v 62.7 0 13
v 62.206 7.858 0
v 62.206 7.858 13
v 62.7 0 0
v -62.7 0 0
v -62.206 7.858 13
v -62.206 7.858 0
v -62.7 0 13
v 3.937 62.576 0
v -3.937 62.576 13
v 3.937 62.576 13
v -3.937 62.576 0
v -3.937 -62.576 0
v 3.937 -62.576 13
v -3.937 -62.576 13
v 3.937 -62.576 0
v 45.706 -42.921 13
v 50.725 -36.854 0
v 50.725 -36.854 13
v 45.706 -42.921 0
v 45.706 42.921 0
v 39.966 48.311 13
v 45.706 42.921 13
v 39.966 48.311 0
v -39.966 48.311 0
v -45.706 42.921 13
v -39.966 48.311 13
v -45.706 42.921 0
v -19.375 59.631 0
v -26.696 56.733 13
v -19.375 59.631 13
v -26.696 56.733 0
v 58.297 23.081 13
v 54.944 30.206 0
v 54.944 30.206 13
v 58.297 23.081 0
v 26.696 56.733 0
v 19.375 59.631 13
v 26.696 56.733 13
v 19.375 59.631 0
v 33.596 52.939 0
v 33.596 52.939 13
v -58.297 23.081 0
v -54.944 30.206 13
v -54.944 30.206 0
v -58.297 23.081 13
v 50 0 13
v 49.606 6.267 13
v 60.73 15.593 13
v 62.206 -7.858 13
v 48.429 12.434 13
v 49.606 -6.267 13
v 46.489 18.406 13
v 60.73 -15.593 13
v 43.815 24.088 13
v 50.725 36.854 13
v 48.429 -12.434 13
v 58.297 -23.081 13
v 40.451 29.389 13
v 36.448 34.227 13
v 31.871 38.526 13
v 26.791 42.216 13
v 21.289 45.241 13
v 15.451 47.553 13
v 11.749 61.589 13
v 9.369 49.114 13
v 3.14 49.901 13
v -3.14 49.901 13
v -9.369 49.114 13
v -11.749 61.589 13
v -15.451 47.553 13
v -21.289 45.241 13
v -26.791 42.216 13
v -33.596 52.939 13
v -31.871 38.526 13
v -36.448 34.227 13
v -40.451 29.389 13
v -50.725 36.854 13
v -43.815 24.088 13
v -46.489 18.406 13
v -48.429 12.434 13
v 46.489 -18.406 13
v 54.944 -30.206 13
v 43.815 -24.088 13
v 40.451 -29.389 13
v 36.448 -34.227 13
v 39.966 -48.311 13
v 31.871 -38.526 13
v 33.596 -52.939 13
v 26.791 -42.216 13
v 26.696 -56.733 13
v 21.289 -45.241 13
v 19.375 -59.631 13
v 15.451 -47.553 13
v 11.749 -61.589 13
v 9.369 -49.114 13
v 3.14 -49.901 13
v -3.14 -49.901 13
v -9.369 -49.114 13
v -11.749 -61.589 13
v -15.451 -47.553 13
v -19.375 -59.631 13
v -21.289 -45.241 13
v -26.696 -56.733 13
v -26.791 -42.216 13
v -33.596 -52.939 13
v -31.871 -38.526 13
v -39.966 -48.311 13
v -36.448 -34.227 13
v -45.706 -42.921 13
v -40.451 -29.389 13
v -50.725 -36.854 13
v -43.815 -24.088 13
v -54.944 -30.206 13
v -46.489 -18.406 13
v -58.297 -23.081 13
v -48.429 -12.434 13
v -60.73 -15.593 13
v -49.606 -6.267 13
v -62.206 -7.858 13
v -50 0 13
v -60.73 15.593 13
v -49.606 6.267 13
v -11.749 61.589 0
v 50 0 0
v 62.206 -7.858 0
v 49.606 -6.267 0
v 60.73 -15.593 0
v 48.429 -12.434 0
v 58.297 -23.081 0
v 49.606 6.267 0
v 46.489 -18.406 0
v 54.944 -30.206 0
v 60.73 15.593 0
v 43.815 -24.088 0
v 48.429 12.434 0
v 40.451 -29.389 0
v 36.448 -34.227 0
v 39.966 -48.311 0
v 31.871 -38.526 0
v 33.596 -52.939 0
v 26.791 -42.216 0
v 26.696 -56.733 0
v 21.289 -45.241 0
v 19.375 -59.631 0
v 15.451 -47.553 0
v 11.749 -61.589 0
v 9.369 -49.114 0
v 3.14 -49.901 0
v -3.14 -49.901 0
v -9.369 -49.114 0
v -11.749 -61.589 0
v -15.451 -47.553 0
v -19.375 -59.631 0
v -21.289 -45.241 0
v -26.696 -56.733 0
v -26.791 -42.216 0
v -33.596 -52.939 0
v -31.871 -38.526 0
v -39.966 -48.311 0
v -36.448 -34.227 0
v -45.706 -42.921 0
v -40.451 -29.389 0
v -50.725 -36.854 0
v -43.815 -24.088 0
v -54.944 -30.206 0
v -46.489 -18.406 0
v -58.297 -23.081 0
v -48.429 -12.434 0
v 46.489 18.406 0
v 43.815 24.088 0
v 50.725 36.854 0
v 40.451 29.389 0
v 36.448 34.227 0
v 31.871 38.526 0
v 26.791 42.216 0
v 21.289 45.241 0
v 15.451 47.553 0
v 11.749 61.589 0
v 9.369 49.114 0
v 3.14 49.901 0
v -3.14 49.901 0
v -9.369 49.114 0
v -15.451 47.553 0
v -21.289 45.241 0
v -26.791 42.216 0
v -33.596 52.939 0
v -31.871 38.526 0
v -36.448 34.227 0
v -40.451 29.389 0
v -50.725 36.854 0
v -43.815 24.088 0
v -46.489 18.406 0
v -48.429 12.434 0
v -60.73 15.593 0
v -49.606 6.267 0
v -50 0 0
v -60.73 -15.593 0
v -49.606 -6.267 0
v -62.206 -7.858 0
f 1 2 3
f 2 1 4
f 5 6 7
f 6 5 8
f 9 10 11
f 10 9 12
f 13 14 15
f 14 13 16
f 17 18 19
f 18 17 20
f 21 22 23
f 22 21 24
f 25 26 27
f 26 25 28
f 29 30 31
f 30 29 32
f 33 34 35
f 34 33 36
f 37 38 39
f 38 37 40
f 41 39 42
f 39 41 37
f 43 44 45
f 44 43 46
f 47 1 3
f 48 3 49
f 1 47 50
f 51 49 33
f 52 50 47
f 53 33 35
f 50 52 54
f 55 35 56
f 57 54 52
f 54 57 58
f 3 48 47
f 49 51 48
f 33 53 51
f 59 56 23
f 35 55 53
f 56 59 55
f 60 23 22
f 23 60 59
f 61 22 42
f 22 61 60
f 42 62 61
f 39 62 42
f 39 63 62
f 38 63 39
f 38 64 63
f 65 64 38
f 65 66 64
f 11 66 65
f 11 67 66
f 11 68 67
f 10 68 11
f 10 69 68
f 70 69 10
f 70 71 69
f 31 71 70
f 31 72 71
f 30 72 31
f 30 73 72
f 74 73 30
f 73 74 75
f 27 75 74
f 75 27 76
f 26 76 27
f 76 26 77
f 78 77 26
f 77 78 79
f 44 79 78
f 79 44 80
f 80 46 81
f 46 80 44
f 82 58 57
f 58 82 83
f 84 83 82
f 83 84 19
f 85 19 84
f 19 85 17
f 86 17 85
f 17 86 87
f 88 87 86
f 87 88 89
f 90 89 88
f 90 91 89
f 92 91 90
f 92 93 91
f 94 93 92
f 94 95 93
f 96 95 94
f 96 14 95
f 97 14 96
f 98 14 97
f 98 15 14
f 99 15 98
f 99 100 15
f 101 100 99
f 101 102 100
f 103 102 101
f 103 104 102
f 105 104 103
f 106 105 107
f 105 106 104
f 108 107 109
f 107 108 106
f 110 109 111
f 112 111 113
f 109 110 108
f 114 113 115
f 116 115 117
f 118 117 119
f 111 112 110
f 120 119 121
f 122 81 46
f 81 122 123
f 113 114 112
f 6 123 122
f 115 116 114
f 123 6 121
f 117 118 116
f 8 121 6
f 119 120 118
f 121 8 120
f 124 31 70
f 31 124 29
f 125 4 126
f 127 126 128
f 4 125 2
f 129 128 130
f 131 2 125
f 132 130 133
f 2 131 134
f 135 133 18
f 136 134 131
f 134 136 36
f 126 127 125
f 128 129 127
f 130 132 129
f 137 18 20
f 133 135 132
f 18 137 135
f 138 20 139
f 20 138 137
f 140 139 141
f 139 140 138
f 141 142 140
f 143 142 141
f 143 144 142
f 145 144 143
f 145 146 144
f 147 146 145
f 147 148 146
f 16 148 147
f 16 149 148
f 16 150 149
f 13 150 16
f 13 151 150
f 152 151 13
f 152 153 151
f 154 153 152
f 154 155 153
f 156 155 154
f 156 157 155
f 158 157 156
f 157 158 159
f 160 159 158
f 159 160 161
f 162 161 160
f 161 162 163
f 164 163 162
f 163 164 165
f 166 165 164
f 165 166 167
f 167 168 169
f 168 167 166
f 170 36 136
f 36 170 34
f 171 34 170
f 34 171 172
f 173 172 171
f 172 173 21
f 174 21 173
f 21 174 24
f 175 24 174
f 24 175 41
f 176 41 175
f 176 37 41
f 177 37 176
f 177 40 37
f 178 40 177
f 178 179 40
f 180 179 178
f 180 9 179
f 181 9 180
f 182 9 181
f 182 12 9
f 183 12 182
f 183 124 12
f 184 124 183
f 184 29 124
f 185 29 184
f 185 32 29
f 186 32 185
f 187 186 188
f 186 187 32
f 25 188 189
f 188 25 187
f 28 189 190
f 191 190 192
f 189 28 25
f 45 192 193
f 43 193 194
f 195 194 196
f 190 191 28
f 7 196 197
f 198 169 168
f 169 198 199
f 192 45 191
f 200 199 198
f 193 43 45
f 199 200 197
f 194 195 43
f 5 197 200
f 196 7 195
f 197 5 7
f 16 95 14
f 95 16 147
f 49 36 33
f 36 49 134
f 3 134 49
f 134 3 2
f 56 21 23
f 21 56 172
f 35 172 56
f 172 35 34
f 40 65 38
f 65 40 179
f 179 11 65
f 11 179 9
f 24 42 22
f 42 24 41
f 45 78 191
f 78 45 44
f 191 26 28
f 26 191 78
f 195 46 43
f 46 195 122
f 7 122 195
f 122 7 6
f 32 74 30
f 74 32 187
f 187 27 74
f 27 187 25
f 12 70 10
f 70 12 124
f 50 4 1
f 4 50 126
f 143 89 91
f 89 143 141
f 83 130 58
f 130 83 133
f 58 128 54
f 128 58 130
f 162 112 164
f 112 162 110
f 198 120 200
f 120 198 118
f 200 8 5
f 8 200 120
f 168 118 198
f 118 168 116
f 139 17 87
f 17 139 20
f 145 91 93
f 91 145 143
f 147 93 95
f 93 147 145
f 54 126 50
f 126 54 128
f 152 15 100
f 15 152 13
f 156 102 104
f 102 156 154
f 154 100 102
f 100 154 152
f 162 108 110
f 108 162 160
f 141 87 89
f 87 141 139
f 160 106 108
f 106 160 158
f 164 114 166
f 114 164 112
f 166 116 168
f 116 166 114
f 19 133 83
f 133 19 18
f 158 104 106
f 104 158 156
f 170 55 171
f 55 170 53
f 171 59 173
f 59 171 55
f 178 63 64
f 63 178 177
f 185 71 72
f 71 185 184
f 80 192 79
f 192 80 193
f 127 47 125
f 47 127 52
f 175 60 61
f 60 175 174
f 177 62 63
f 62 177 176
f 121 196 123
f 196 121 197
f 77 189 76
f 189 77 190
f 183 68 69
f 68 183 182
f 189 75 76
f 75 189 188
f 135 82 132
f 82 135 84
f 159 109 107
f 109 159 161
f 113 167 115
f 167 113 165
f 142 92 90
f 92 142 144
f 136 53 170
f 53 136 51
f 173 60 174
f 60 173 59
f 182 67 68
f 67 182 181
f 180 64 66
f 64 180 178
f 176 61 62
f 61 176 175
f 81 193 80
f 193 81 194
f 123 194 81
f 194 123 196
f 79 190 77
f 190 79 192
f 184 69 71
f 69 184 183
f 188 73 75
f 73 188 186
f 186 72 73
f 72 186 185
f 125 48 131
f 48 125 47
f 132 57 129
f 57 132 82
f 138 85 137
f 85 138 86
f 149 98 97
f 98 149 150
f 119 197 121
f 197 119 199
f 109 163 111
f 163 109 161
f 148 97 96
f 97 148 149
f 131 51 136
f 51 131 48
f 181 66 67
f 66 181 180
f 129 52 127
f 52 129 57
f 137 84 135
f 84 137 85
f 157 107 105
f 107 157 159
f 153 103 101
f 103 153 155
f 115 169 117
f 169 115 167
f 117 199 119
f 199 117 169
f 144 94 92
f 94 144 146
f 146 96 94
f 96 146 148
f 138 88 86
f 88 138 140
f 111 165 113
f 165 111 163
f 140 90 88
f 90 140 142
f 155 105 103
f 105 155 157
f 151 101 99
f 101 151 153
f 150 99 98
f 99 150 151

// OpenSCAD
$fn = 50;


difference() {
	union() {
		translate(v = [0, 0, 0]) {
			rotate(a = [0, 0, 0]) {
				cylinder(h = 13, r = 62.7000000000);
			}
		}
	}
	union() {
		translate(v = [0, 0, 0]) {
			rotate(a = [0, 0, 0]) {
				cylinder(h = 13, r = 50.0000000000);
			}
		}
	}
}
